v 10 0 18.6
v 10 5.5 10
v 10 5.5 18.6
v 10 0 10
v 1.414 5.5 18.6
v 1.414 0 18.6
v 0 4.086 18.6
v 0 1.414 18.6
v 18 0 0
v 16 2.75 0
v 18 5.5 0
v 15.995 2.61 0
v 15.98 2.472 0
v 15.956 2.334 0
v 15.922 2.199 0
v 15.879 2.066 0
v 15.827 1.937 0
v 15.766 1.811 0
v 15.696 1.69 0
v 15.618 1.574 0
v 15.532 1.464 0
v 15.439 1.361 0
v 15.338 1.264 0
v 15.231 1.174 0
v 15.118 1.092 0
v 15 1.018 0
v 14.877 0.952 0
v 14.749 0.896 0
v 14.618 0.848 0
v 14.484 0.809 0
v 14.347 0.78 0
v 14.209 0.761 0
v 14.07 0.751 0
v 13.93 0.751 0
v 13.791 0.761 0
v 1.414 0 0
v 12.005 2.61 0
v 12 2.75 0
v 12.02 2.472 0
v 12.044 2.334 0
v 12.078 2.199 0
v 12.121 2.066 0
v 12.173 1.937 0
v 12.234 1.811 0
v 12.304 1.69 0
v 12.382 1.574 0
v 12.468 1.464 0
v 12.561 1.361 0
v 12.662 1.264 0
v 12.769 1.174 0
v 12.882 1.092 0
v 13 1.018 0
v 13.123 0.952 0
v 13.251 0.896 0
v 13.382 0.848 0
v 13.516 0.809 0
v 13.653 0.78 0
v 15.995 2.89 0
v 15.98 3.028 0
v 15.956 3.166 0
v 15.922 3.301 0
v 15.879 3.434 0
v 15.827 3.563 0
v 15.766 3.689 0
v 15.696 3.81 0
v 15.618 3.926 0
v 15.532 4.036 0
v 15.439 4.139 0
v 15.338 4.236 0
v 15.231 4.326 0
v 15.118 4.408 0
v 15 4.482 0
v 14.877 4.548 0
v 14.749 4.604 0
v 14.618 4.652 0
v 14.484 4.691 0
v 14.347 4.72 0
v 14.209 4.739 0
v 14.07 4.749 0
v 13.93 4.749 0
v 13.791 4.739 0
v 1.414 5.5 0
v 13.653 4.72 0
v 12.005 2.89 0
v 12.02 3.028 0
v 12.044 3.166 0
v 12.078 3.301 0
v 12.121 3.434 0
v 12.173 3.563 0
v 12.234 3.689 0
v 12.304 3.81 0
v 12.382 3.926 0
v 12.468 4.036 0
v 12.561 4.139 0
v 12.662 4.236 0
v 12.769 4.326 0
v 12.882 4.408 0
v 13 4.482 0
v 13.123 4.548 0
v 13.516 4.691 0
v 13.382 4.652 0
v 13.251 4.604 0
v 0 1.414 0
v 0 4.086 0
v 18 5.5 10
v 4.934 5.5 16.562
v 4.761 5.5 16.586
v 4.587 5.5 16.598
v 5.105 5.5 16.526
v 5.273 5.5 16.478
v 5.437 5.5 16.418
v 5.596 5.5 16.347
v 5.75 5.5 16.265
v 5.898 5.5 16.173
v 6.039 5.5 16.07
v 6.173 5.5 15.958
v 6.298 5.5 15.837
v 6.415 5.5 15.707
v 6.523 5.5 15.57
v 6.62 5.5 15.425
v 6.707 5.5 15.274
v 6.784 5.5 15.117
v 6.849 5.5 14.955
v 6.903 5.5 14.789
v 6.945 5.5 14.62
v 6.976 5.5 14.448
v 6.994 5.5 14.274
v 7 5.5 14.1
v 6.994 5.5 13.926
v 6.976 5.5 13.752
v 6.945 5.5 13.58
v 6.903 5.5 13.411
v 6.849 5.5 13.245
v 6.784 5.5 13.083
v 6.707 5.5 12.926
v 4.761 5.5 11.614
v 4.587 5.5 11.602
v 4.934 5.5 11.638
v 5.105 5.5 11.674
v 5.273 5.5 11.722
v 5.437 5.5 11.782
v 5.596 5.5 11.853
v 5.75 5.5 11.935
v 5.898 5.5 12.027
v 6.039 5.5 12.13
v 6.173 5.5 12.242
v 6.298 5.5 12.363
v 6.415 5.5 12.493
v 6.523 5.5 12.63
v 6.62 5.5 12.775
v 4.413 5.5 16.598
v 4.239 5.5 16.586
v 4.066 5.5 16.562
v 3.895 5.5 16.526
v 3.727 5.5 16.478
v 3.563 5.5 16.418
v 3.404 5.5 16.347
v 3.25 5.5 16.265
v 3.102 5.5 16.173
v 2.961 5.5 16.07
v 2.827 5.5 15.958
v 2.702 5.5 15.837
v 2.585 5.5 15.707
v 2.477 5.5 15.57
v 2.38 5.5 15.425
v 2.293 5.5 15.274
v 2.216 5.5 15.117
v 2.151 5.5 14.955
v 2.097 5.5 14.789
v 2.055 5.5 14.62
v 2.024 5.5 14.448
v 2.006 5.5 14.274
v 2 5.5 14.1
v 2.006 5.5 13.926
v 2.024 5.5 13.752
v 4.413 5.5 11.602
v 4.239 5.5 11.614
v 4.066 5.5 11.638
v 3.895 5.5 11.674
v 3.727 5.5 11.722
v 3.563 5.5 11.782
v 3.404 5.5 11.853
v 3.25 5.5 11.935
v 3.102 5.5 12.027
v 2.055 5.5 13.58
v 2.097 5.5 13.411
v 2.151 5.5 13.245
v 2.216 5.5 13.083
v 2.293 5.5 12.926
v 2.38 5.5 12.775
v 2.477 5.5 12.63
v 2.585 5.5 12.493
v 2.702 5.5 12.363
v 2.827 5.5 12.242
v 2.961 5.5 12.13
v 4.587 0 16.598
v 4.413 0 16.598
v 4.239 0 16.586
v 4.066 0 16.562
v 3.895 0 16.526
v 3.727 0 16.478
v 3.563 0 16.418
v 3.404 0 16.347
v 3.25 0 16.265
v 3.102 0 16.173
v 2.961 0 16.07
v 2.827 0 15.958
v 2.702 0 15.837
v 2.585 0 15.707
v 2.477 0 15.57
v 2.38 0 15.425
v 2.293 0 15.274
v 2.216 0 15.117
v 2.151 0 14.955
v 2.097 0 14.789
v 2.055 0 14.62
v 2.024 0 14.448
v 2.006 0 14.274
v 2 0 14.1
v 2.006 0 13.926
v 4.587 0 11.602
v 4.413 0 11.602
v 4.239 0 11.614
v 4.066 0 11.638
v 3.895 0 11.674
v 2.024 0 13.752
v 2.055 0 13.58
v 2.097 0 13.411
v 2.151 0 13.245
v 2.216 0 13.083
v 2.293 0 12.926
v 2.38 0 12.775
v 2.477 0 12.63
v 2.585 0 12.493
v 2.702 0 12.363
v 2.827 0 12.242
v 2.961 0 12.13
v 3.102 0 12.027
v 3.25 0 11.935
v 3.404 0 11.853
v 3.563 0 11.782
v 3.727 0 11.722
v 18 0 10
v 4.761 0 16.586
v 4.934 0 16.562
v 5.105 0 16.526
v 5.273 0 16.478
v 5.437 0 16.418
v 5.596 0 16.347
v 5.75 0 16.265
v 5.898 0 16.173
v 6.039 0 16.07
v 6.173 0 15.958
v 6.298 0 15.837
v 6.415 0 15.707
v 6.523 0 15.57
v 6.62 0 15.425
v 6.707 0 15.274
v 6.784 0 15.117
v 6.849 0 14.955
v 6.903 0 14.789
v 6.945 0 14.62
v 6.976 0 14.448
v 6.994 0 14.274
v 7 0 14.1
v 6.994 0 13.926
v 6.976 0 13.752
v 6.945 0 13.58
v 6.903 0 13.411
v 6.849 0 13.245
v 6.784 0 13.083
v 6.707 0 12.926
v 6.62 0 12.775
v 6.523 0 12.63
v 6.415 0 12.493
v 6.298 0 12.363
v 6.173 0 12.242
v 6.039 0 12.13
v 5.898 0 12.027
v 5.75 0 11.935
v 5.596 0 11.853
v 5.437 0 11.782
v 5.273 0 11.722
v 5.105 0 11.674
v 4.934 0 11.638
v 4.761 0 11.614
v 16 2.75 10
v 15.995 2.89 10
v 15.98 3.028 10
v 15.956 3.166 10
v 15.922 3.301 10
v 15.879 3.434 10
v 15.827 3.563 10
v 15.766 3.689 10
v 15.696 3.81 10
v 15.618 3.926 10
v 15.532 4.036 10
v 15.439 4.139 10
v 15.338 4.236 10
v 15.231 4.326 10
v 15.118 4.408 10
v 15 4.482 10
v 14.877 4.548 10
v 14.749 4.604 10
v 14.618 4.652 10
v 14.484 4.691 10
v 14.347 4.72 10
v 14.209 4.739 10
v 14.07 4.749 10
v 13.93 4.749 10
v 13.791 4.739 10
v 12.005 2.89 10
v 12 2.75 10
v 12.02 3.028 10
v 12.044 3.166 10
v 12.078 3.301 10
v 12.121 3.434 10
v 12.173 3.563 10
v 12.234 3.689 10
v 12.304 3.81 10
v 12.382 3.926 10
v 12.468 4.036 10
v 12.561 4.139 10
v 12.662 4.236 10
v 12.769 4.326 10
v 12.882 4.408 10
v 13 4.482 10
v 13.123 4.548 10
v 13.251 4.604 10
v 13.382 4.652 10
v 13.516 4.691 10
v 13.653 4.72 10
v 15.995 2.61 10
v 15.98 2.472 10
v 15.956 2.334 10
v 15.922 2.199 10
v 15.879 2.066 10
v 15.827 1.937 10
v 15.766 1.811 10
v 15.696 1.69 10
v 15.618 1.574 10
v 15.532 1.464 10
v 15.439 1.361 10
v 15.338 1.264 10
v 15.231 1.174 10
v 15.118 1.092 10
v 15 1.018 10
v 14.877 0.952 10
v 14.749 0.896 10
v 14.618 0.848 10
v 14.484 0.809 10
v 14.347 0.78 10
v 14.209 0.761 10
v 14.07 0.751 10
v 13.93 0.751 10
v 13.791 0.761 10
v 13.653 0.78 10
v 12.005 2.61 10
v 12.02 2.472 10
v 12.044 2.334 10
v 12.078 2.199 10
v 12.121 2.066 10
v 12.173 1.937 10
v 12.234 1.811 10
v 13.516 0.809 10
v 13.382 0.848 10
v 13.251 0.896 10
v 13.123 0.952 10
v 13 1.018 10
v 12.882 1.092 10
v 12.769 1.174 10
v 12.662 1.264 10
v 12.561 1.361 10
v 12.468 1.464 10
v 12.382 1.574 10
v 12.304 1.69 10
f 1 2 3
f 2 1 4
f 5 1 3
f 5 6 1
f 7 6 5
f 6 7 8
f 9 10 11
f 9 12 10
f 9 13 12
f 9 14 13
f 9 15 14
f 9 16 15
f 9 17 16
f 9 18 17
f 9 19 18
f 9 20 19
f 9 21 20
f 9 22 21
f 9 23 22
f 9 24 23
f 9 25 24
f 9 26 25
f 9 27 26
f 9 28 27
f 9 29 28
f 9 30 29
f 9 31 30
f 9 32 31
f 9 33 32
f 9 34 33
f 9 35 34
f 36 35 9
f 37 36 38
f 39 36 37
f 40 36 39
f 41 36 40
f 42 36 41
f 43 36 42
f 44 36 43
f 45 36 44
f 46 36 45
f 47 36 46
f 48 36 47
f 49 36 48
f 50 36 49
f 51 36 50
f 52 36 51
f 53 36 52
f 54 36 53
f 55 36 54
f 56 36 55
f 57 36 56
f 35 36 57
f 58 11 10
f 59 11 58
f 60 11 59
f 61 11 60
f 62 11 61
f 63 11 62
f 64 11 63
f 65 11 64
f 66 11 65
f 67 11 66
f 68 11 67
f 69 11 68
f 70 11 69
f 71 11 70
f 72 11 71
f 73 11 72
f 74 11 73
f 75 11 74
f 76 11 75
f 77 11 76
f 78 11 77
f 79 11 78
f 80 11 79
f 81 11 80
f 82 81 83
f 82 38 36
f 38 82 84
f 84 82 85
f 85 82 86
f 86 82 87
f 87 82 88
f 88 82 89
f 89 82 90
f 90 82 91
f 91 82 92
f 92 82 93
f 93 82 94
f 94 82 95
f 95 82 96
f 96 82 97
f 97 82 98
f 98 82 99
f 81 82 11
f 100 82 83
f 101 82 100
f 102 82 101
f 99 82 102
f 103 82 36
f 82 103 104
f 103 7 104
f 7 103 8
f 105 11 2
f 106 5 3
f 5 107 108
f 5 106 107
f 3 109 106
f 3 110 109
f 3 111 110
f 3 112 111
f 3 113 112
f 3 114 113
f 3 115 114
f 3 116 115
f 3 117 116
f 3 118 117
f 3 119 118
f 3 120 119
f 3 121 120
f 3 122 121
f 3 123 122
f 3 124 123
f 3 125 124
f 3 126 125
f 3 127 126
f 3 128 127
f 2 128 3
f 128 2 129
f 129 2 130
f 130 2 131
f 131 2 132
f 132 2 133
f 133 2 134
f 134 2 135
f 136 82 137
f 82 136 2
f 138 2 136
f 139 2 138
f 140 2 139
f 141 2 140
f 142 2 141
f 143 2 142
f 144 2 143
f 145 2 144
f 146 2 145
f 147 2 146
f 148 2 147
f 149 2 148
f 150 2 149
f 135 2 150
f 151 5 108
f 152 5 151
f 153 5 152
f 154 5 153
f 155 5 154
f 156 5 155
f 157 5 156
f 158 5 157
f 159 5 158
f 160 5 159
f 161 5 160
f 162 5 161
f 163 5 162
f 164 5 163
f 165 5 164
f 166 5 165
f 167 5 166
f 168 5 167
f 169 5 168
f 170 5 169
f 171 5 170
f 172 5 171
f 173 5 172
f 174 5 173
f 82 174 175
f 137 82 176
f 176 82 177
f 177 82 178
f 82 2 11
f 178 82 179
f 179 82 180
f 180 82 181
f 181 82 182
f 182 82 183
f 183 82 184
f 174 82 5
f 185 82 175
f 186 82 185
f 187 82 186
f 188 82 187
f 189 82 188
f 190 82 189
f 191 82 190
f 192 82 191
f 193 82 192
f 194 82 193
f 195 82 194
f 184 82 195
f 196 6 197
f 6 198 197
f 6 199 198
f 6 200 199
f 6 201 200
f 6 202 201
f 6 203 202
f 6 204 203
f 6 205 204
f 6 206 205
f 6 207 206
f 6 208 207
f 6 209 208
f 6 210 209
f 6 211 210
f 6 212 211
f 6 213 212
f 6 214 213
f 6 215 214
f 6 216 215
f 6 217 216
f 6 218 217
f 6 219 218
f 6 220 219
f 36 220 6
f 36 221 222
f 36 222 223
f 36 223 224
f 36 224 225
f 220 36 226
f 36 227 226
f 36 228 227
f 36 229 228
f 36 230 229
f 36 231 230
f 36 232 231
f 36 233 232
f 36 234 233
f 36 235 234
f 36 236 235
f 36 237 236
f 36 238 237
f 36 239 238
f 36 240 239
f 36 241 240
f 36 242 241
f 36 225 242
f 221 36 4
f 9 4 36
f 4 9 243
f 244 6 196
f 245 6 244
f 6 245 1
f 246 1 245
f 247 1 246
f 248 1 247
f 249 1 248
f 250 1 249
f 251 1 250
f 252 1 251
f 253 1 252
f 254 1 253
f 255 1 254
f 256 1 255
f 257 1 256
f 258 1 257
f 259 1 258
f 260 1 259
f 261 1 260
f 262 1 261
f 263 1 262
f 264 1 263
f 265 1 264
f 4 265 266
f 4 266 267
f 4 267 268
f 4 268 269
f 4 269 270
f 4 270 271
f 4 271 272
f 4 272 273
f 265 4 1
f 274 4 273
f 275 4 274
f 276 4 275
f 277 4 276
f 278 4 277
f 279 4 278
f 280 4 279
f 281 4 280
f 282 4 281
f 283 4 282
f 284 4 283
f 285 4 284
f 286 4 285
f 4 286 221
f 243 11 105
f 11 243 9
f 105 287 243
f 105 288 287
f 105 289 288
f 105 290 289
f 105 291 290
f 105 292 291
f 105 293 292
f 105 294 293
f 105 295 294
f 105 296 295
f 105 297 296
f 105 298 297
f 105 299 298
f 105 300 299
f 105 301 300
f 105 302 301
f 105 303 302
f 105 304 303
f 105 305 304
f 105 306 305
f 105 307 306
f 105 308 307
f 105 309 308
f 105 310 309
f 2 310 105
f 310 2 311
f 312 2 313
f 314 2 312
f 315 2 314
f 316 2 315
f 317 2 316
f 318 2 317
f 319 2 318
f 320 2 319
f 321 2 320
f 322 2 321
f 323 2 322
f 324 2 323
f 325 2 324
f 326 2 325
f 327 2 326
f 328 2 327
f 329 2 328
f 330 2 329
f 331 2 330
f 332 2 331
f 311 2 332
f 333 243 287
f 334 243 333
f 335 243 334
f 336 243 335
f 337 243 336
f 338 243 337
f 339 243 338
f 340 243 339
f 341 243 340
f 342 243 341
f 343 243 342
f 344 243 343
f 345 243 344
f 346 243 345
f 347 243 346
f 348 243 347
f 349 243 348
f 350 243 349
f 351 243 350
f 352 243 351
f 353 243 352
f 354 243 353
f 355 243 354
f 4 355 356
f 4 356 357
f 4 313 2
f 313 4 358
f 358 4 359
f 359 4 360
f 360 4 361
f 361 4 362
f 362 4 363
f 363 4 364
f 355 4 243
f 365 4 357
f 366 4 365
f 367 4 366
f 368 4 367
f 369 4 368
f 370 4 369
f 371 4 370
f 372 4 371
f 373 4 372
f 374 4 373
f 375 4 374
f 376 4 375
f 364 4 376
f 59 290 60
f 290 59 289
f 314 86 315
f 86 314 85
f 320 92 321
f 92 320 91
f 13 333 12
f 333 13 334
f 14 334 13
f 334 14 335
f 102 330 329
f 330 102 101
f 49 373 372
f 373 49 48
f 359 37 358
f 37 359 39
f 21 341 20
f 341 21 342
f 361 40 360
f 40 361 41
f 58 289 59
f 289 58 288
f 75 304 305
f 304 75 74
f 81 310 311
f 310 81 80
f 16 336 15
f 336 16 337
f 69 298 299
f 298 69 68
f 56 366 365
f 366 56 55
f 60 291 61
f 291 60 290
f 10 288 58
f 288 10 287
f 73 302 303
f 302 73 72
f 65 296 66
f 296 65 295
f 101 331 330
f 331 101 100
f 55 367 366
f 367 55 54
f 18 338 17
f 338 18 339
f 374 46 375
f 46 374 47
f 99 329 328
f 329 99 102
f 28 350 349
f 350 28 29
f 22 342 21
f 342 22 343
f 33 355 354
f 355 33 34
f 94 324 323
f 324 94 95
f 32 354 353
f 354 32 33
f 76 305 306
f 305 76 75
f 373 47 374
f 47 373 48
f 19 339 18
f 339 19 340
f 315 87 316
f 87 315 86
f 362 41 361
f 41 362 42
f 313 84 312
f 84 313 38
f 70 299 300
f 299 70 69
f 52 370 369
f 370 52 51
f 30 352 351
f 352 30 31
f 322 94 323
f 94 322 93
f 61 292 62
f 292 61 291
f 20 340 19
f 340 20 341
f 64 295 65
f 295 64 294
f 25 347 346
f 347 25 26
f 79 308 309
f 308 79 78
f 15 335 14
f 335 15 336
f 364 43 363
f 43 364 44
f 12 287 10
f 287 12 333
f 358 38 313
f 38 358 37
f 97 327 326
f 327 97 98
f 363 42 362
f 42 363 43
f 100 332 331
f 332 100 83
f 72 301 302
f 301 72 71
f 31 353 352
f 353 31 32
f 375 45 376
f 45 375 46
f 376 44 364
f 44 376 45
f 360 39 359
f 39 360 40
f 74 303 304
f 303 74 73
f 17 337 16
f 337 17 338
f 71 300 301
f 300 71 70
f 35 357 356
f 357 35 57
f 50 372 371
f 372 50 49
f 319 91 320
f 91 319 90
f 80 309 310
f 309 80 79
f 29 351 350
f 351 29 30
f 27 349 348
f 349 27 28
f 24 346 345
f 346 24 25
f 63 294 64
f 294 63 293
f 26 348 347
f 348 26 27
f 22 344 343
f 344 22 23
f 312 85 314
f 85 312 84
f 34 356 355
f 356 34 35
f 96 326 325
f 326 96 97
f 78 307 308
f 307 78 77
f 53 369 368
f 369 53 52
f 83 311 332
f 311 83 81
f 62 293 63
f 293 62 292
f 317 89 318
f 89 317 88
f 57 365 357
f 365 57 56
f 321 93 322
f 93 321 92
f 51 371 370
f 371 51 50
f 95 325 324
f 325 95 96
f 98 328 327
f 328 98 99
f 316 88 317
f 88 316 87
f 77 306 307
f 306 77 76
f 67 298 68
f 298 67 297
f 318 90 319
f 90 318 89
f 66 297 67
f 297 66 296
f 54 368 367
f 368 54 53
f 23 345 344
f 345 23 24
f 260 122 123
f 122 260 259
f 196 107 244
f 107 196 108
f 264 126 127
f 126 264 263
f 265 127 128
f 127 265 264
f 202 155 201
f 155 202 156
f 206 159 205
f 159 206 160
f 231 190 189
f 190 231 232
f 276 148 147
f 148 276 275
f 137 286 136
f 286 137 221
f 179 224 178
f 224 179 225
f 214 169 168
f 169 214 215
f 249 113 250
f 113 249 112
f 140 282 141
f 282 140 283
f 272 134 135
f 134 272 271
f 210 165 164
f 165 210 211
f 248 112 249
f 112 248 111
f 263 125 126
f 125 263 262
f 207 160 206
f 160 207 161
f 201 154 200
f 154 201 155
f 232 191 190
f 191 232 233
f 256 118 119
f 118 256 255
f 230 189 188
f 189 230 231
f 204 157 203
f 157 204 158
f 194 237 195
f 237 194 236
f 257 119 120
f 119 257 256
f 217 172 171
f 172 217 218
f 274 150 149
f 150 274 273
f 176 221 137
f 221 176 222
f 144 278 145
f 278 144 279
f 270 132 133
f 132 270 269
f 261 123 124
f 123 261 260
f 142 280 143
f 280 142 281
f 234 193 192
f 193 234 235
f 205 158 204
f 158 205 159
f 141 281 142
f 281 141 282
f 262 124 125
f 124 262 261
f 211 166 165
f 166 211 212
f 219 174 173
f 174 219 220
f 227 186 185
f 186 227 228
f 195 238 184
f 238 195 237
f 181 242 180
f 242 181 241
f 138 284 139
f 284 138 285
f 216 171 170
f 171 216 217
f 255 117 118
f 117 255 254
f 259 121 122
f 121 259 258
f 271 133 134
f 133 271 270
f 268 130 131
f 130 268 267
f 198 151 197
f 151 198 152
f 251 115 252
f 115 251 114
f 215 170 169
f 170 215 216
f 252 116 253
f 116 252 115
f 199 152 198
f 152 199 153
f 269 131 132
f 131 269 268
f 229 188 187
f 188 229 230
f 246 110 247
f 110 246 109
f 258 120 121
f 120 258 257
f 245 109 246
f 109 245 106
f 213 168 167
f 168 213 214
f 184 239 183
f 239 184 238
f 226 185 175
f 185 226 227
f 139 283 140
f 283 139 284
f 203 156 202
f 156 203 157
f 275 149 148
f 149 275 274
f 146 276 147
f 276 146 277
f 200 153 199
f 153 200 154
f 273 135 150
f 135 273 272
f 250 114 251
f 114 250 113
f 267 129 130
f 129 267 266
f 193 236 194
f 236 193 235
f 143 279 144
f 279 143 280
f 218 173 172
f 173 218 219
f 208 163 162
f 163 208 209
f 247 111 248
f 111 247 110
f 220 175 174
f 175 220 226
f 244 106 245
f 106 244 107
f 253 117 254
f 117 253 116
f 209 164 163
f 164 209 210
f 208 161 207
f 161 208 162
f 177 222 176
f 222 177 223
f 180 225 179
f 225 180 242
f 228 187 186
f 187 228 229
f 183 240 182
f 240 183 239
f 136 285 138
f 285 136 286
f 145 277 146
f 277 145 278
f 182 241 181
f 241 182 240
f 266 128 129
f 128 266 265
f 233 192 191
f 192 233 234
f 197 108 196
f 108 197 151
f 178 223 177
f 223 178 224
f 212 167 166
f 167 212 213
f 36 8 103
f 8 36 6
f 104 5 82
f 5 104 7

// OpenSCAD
$fn=90;
height = 18.6;
baseHeight = 10;
depth = 5.5;

difference(){
	union(){
		cube([10, depth, height]);
		cube([18, depth, baseHeight]);
	}
	#translate([14, depth/2, 0])
		cylinder(d=4, h=baseHeight);
	
	diameter = 5;
	#translate([2+diameter/2, depth, height-4.5])
		rotate([90, 0, 0])
			cylinder(d=diameter, h=depth);
	
	sideLength = 2;
	#translate([0, -sqrt(sideLength), 0])	
		rotate([0, 0, 45])
			cube([sideLength, sideLength, height]);
	#translate([0, depth-sqrt(sideLength), 0])	
		rotate([0, 0, 45])
			cube([sideLength, sideLength, height]);
}
